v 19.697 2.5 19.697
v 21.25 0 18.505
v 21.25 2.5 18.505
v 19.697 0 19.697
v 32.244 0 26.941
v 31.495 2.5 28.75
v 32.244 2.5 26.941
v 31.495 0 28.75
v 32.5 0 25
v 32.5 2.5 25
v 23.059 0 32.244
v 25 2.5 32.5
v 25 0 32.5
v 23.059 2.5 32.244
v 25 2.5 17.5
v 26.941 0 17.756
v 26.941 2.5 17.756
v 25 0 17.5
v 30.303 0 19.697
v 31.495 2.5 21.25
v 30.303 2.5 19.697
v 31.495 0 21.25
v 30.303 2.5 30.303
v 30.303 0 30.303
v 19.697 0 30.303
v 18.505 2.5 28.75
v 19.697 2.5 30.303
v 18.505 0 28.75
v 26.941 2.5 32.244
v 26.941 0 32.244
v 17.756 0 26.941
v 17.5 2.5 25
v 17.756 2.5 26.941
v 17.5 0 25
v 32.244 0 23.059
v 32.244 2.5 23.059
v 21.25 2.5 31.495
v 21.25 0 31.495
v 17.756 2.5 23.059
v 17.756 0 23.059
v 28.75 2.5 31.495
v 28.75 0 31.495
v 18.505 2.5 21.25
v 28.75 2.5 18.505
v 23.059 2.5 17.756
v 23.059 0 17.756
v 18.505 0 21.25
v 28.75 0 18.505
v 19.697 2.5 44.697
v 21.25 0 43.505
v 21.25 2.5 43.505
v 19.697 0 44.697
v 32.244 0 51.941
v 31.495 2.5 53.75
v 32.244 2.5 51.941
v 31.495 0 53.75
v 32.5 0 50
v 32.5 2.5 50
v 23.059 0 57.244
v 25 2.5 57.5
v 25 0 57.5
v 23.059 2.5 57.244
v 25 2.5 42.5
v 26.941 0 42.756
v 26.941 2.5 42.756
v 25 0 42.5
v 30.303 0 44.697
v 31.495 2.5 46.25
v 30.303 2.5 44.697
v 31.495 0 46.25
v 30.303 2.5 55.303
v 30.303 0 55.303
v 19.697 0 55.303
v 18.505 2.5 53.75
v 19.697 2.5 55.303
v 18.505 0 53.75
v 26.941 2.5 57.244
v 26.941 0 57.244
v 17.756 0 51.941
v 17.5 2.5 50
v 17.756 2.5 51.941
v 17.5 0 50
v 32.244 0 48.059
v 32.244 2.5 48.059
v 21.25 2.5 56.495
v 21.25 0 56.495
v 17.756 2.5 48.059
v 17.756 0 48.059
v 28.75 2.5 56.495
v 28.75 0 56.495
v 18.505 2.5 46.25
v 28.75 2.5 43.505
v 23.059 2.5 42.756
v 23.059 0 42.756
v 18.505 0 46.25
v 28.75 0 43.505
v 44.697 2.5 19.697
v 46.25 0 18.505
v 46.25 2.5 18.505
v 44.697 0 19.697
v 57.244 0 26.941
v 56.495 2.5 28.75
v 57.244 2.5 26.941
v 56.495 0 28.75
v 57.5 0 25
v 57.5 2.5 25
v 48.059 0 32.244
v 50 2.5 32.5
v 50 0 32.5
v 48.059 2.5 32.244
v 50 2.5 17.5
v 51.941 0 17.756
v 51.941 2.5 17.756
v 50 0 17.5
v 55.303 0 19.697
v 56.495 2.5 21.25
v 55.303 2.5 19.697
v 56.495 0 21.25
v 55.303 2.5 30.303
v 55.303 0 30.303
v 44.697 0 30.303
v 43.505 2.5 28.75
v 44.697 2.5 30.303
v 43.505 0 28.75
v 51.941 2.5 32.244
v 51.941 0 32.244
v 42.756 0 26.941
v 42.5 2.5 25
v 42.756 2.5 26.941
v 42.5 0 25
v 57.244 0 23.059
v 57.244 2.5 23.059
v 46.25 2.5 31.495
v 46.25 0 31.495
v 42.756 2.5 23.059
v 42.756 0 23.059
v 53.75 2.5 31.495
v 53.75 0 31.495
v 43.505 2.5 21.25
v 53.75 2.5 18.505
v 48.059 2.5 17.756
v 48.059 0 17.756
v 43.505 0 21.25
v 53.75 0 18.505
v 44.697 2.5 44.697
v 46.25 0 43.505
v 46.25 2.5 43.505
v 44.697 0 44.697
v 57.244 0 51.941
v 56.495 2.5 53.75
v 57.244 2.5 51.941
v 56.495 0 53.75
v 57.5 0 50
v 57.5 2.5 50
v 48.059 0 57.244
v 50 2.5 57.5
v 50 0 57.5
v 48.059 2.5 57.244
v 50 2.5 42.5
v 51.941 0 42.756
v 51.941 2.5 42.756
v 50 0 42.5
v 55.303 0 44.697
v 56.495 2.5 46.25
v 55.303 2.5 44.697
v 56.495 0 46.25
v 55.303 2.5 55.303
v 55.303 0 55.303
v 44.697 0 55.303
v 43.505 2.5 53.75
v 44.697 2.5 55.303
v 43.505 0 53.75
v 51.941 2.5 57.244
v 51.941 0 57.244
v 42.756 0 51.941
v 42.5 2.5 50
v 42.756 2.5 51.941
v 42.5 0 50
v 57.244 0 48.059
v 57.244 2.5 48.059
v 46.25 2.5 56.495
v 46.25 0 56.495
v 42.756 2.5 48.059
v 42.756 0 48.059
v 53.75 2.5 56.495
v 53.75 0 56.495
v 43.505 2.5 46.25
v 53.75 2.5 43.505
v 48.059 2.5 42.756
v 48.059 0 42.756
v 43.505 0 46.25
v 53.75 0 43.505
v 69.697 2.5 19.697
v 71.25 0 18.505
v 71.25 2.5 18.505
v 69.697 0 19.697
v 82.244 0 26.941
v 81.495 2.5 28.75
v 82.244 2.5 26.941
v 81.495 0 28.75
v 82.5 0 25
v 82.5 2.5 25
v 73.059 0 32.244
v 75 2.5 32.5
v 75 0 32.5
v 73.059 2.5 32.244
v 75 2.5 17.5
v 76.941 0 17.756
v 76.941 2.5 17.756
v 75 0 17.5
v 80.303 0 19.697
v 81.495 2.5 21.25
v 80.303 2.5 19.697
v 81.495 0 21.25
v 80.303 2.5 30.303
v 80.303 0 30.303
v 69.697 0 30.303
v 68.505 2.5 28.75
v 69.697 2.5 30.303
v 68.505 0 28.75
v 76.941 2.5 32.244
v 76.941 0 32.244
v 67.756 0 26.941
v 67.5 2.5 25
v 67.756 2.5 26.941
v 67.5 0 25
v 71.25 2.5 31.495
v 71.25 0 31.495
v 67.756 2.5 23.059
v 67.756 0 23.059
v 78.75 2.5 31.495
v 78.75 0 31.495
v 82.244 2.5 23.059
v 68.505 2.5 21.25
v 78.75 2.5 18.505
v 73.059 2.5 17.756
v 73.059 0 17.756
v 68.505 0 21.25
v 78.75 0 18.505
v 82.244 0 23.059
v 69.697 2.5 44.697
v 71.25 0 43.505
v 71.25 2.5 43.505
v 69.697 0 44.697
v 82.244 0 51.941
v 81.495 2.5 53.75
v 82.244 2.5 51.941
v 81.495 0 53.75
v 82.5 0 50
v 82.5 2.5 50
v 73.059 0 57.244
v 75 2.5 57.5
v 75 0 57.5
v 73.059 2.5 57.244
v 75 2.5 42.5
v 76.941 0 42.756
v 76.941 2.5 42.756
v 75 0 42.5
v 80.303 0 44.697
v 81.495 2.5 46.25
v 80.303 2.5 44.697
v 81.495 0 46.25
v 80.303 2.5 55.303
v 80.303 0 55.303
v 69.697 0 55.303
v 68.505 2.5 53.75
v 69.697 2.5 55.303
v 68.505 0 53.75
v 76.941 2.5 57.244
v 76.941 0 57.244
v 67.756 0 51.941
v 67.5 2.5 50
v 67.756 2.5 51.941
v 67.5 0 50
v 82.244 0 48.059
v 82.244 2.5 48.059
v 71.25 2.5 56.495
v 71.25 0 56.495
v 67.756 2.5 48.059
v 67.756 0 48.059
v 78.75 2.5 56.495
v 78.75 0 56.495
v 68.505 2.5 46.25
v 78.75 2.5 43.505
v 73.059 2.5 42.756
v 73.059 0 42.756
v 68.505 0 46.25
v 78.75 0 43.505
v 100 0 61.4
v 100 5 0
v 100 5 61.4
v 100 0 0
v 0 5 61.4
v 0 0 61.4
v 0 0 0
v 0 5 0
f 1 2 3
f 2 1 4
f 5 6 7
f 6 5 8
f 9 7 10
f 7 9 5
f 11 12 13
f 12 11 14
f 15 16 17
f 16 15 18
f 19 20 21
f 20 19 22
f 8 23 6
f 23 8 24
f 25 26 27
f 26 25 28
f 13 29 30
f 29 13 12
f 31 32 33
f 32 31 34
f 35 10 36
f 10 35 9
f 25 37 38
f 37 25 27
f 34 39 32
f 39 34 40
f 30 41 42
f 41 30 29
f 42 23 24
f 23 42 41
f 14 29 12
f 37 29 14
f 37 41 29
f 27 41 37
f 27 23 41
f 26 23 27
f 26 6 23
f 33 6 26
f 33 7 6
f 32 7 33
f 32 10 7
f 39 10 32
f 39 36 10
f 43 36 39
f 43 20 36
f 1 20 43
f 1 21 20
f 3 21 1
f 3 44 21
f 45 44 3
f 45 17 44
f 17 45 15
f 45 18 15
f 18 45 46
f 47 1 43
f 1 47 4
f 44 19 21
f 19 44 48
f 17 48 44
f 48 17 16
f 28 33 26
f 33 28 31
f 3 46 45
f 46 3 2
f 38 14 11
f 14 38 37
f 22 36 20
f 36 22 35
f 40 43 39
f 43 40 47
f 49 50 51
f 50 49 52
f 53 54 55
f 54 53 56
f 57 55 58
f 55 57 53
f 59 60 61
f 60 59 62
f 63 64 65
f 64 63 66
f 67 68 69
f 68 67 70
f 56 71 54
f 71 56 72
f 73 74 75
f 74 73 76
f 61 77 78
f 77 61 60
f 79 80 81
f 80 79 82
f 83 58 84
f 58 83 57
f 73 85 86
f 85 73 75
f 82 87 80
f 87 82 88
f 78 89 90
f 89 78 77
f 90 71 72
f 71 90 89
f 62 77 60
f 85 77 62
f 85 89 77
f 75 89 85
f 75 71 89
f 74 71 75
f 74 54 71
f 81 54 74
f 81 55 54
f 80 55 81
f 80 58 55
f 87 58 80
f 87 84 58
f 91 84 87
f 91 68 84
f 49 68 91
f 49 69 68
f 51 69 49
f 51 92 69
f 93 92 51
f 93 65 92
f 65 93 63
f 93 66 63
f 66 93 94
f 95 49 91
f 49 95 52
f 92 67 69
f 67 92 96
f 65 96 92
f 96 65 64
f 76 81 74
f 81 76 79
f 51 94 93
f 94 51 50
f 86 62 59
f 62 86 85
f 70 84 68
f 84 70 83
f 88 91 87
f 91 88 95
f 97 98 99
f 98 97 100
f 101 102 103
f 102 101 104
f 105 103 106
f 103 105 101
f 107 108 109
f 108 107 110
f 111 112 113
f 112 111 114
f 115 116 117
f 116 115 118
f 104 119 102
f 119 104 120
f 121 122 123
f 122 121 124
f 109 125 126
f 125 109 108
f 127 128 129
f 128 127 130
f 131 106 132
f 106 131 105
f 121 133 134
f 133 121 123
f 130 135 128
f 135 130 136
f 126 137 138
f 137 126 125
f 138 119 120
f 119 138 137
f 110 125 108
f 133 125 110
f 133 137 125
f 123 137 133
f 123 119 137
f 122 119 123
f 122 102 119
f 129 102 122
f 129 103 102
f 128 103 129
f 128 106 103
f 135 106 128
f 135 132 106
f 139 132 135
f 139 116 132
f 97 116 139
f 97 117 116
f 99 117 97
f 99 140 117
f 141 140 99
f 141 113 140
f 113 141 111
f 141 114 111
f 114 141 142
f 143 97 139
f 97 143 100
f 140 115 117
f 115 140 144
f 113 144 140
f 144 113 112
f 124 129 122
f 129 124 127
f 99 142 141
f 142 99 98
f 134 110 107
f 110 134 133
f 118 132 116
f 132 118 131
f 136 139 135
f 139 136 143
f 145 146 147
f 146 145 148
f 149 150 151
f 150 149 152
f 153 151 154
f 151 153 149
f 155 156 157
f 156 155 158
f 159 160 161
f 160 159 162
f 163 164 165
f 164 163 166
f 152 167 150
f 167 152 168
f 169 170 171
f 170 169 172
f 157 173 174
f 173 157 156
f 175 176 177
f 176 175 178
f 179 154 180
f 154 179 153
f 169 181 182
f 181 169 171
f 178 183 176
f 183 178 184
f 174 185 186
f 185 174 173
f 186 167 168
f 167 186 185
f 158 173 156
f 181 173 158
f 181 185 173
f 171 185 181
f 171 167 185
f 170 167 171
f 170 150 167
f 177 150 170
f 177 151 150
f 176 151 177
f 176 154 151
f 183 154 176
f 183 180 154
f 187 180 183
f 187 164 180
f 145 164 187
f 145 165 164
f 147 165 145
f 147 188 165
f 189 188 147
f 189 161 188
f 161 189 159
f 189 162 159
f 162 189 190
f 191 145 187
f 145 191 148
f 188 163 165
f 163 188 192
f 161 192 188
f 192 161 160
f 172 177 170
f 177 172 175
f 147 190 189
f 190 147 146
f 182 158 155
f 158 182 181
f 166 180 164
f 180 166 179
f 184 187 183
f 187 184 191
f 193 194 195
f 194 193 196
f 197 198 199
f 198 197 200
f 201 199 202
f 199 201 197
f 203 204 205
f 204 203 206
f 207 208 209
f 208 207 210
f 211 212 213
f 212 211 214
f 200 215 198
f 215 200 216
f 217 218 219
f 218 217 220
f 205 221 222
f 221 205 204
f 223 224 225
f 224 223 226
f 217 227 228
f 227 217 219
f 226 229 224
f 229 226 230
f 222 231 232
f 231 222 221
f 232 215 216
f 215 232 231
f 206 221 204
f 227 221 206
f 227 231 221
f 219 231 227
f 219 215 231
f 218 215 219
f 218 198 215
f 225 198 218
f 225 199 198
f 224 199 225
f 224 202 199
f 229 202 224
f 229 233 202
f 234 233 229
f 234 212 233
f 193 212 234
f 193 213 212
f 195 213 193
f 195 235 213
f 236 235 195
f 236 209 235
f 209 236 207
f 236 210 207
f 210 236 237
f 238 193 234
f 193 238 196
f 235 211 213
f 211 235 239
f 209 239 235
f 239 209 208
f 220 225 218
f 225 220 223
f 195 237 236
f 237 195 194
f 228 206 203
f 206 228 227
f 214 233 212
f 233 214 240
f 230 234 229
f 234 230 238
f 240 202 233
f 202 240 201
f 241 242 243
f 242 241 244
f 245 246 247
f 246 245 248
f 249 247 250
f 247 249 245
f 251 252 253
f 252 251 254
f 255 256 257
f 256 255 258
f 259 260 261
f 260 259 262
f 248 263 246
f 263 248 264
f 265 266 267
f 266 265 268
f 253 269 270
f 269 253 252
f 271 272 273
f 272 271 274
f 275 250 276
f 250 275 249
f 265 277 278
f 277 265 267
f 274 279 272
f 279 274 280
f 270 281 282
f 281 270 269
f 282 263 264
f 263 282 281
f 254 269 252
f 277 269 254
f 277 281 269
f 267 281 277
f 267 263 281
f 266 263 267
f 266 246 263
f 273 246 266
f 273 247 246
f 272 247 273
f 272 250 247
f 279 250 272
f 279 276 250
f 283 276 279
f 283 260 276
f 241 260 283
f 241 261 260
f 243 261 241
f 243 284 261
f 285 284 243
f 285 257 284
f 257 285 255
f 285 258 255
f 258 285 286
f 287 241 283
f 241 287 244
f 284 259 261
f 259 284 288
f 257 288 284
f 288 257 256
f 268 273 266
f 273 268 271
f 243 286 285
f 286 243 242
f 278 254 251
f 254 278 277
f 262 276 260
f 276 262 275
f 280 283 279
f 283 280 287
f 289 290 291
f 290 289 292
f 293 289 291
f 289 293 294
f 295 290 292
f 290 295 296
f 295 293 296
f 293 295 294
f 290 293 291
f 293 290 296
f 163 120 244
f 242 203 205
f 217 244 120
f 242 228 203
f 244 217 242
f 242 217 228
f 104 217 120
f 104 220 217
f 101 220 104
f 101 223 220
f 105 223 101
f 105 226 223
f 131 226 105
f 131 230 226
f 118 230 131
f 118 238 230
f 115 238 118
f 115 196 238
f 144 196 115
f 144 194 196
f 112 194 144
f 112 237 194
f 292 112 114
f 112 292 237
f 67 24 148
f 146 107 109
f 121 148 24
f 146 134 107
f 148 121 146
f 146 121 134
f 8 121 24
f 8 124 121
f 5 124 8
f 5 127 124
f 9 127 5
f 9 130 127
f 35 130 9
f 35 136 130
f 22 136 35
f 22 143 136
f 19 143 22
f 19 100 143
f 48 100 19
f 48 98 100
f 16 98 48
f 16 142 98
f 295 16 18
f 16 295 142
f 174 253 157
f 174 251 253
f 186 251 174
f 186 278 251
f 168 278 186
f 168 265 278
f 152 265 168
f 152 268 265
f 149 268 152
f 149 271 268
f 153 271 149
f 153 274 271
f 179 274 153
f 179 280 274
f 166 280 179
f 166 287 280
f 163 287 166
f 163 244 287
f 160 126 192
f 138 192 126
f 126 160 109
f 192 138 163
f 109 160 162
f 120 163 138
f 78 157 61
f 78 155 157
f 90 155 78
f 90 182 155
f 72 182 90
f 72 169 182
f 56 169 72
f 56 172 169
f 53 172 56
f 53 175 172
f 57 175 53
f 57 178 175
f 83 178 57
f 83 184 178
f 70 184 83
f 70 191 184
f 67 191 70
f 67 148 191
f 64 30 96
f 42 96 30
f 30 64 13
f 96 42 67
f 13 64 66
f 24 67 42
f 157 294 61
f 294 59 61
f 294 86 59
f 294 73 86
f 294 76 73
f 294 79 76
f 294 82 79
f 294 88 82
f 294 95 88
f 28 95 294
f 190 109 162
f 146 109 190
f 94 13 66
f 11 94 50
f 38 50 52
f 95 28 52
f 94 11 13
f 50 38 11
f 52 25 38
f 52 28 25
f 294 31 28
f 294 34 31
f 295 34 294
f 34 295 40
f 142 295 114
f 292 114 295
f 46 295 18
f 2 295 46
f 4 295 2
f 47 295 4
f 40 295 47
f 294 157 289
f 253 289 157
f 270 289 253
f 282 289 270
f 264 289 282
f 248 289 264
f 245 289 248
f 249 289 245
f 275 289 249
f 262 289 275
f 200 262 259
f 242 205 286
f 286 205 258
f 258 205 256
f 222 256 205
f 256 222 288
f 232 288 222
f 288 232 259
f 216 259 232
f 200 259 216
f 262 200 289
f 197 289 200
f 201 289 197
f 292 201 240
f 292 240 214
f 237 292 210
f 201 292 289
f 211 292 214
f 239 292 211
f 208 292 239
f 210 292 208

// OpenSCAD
/* doodle-meta {"version":1,"parameters":{"plate_width":{"label":"Overall width","description":"Changes the body width","unit":"mm","feature":"body_width"},"plate_height":{"label":"Overall height","description":"Changes the body height","unit":"mm","feature":"body_height"},"plate_thickness":{"label":"Plate thickness","description":"Changes the plate thickness","unit":"mm","feature":"body_thickness"},"hole_diameter":{"label":"Hole diameter","description":"Changes the diameter of the vent holes","unit":"mm","feature":"vent_holes"},"hole_spacing":{"label":"Hole spacing","description":"Changes the center-to-center spacing of the vent holes","unit":"mm","feature":"vent_holes"}},"features":{"body_width":{"kind":"dimension","axis":"x","label":"Overall width"},"body_height":{"kind":"dimension","axis":"z","label":"Overall height"},"body_thickness":{"kind":"dimension","axis":"y","label":"Plate thickness"},"vent_holes":{"kind":"region","label":"Vent hole grid","min":[{"parameter":"hole_spacing","scale":0.5,"offset":0},{"parameter":"plate_thickness","scale":-1,"offset":0},{"parameter":"hole_spacing","scale":0.5,"offset":0}],"max":[{"parameter":"hole_spacing","scale":2.5,"offset":0},{"parameter":"plate_thickness","scale":2,"offset":0},{"parameter":"hole_spacing","scale":2.5,"offset":0}]}}} */

// Top-level parameters (user-editable)
plate_width = 100;
plate_height = 61.4;
plate_thickness = 5;
hole_diameter = 15;
hole_spacing = 25;

// Derived constants (not user-editable)
eps = 0.01;
grid_cols = 3;
grid_rows = 3;

// Module for a single through-hole cutter
// Cuts along Y axis (front-to-back)
module hole_cutter(x, z) {
    translate([x, -eps, z])
        rotate([90, 0, 0])
            cylinder(h = plate_thickness + 2 * eps, d = hole_diameter, center = true);
}

// Main design
difference() {
    // Positive body: rectangular plate
    // Sits on build plate (Z=0 to Z=plate_height)
    // Extends in X (0 to plate_width) and Y (0 to plate_thickness)
    translate([0, 0, 0])
        cube([plate_width, plate_thickness, plate_height]);

    // Subtractive cutters: 3x3 grid of holes
    // Holes are centered in the grid pattern
    // Grid centers are at x = spacing, 2*spacing, 3*spacing
    // Grid centers are at z = spacing, 2*spacing, 3*spacing
    for (i = [0 : grid_cols - 1]) {
        for (j = [0 : grid_rows - 1]) {
            hole_x = (i + 1) * hole_spacing;
            hole_z = (j + 1) * hole_spacing;
            hole_cutter(hole_x, hole_z);
        }
    }
}
